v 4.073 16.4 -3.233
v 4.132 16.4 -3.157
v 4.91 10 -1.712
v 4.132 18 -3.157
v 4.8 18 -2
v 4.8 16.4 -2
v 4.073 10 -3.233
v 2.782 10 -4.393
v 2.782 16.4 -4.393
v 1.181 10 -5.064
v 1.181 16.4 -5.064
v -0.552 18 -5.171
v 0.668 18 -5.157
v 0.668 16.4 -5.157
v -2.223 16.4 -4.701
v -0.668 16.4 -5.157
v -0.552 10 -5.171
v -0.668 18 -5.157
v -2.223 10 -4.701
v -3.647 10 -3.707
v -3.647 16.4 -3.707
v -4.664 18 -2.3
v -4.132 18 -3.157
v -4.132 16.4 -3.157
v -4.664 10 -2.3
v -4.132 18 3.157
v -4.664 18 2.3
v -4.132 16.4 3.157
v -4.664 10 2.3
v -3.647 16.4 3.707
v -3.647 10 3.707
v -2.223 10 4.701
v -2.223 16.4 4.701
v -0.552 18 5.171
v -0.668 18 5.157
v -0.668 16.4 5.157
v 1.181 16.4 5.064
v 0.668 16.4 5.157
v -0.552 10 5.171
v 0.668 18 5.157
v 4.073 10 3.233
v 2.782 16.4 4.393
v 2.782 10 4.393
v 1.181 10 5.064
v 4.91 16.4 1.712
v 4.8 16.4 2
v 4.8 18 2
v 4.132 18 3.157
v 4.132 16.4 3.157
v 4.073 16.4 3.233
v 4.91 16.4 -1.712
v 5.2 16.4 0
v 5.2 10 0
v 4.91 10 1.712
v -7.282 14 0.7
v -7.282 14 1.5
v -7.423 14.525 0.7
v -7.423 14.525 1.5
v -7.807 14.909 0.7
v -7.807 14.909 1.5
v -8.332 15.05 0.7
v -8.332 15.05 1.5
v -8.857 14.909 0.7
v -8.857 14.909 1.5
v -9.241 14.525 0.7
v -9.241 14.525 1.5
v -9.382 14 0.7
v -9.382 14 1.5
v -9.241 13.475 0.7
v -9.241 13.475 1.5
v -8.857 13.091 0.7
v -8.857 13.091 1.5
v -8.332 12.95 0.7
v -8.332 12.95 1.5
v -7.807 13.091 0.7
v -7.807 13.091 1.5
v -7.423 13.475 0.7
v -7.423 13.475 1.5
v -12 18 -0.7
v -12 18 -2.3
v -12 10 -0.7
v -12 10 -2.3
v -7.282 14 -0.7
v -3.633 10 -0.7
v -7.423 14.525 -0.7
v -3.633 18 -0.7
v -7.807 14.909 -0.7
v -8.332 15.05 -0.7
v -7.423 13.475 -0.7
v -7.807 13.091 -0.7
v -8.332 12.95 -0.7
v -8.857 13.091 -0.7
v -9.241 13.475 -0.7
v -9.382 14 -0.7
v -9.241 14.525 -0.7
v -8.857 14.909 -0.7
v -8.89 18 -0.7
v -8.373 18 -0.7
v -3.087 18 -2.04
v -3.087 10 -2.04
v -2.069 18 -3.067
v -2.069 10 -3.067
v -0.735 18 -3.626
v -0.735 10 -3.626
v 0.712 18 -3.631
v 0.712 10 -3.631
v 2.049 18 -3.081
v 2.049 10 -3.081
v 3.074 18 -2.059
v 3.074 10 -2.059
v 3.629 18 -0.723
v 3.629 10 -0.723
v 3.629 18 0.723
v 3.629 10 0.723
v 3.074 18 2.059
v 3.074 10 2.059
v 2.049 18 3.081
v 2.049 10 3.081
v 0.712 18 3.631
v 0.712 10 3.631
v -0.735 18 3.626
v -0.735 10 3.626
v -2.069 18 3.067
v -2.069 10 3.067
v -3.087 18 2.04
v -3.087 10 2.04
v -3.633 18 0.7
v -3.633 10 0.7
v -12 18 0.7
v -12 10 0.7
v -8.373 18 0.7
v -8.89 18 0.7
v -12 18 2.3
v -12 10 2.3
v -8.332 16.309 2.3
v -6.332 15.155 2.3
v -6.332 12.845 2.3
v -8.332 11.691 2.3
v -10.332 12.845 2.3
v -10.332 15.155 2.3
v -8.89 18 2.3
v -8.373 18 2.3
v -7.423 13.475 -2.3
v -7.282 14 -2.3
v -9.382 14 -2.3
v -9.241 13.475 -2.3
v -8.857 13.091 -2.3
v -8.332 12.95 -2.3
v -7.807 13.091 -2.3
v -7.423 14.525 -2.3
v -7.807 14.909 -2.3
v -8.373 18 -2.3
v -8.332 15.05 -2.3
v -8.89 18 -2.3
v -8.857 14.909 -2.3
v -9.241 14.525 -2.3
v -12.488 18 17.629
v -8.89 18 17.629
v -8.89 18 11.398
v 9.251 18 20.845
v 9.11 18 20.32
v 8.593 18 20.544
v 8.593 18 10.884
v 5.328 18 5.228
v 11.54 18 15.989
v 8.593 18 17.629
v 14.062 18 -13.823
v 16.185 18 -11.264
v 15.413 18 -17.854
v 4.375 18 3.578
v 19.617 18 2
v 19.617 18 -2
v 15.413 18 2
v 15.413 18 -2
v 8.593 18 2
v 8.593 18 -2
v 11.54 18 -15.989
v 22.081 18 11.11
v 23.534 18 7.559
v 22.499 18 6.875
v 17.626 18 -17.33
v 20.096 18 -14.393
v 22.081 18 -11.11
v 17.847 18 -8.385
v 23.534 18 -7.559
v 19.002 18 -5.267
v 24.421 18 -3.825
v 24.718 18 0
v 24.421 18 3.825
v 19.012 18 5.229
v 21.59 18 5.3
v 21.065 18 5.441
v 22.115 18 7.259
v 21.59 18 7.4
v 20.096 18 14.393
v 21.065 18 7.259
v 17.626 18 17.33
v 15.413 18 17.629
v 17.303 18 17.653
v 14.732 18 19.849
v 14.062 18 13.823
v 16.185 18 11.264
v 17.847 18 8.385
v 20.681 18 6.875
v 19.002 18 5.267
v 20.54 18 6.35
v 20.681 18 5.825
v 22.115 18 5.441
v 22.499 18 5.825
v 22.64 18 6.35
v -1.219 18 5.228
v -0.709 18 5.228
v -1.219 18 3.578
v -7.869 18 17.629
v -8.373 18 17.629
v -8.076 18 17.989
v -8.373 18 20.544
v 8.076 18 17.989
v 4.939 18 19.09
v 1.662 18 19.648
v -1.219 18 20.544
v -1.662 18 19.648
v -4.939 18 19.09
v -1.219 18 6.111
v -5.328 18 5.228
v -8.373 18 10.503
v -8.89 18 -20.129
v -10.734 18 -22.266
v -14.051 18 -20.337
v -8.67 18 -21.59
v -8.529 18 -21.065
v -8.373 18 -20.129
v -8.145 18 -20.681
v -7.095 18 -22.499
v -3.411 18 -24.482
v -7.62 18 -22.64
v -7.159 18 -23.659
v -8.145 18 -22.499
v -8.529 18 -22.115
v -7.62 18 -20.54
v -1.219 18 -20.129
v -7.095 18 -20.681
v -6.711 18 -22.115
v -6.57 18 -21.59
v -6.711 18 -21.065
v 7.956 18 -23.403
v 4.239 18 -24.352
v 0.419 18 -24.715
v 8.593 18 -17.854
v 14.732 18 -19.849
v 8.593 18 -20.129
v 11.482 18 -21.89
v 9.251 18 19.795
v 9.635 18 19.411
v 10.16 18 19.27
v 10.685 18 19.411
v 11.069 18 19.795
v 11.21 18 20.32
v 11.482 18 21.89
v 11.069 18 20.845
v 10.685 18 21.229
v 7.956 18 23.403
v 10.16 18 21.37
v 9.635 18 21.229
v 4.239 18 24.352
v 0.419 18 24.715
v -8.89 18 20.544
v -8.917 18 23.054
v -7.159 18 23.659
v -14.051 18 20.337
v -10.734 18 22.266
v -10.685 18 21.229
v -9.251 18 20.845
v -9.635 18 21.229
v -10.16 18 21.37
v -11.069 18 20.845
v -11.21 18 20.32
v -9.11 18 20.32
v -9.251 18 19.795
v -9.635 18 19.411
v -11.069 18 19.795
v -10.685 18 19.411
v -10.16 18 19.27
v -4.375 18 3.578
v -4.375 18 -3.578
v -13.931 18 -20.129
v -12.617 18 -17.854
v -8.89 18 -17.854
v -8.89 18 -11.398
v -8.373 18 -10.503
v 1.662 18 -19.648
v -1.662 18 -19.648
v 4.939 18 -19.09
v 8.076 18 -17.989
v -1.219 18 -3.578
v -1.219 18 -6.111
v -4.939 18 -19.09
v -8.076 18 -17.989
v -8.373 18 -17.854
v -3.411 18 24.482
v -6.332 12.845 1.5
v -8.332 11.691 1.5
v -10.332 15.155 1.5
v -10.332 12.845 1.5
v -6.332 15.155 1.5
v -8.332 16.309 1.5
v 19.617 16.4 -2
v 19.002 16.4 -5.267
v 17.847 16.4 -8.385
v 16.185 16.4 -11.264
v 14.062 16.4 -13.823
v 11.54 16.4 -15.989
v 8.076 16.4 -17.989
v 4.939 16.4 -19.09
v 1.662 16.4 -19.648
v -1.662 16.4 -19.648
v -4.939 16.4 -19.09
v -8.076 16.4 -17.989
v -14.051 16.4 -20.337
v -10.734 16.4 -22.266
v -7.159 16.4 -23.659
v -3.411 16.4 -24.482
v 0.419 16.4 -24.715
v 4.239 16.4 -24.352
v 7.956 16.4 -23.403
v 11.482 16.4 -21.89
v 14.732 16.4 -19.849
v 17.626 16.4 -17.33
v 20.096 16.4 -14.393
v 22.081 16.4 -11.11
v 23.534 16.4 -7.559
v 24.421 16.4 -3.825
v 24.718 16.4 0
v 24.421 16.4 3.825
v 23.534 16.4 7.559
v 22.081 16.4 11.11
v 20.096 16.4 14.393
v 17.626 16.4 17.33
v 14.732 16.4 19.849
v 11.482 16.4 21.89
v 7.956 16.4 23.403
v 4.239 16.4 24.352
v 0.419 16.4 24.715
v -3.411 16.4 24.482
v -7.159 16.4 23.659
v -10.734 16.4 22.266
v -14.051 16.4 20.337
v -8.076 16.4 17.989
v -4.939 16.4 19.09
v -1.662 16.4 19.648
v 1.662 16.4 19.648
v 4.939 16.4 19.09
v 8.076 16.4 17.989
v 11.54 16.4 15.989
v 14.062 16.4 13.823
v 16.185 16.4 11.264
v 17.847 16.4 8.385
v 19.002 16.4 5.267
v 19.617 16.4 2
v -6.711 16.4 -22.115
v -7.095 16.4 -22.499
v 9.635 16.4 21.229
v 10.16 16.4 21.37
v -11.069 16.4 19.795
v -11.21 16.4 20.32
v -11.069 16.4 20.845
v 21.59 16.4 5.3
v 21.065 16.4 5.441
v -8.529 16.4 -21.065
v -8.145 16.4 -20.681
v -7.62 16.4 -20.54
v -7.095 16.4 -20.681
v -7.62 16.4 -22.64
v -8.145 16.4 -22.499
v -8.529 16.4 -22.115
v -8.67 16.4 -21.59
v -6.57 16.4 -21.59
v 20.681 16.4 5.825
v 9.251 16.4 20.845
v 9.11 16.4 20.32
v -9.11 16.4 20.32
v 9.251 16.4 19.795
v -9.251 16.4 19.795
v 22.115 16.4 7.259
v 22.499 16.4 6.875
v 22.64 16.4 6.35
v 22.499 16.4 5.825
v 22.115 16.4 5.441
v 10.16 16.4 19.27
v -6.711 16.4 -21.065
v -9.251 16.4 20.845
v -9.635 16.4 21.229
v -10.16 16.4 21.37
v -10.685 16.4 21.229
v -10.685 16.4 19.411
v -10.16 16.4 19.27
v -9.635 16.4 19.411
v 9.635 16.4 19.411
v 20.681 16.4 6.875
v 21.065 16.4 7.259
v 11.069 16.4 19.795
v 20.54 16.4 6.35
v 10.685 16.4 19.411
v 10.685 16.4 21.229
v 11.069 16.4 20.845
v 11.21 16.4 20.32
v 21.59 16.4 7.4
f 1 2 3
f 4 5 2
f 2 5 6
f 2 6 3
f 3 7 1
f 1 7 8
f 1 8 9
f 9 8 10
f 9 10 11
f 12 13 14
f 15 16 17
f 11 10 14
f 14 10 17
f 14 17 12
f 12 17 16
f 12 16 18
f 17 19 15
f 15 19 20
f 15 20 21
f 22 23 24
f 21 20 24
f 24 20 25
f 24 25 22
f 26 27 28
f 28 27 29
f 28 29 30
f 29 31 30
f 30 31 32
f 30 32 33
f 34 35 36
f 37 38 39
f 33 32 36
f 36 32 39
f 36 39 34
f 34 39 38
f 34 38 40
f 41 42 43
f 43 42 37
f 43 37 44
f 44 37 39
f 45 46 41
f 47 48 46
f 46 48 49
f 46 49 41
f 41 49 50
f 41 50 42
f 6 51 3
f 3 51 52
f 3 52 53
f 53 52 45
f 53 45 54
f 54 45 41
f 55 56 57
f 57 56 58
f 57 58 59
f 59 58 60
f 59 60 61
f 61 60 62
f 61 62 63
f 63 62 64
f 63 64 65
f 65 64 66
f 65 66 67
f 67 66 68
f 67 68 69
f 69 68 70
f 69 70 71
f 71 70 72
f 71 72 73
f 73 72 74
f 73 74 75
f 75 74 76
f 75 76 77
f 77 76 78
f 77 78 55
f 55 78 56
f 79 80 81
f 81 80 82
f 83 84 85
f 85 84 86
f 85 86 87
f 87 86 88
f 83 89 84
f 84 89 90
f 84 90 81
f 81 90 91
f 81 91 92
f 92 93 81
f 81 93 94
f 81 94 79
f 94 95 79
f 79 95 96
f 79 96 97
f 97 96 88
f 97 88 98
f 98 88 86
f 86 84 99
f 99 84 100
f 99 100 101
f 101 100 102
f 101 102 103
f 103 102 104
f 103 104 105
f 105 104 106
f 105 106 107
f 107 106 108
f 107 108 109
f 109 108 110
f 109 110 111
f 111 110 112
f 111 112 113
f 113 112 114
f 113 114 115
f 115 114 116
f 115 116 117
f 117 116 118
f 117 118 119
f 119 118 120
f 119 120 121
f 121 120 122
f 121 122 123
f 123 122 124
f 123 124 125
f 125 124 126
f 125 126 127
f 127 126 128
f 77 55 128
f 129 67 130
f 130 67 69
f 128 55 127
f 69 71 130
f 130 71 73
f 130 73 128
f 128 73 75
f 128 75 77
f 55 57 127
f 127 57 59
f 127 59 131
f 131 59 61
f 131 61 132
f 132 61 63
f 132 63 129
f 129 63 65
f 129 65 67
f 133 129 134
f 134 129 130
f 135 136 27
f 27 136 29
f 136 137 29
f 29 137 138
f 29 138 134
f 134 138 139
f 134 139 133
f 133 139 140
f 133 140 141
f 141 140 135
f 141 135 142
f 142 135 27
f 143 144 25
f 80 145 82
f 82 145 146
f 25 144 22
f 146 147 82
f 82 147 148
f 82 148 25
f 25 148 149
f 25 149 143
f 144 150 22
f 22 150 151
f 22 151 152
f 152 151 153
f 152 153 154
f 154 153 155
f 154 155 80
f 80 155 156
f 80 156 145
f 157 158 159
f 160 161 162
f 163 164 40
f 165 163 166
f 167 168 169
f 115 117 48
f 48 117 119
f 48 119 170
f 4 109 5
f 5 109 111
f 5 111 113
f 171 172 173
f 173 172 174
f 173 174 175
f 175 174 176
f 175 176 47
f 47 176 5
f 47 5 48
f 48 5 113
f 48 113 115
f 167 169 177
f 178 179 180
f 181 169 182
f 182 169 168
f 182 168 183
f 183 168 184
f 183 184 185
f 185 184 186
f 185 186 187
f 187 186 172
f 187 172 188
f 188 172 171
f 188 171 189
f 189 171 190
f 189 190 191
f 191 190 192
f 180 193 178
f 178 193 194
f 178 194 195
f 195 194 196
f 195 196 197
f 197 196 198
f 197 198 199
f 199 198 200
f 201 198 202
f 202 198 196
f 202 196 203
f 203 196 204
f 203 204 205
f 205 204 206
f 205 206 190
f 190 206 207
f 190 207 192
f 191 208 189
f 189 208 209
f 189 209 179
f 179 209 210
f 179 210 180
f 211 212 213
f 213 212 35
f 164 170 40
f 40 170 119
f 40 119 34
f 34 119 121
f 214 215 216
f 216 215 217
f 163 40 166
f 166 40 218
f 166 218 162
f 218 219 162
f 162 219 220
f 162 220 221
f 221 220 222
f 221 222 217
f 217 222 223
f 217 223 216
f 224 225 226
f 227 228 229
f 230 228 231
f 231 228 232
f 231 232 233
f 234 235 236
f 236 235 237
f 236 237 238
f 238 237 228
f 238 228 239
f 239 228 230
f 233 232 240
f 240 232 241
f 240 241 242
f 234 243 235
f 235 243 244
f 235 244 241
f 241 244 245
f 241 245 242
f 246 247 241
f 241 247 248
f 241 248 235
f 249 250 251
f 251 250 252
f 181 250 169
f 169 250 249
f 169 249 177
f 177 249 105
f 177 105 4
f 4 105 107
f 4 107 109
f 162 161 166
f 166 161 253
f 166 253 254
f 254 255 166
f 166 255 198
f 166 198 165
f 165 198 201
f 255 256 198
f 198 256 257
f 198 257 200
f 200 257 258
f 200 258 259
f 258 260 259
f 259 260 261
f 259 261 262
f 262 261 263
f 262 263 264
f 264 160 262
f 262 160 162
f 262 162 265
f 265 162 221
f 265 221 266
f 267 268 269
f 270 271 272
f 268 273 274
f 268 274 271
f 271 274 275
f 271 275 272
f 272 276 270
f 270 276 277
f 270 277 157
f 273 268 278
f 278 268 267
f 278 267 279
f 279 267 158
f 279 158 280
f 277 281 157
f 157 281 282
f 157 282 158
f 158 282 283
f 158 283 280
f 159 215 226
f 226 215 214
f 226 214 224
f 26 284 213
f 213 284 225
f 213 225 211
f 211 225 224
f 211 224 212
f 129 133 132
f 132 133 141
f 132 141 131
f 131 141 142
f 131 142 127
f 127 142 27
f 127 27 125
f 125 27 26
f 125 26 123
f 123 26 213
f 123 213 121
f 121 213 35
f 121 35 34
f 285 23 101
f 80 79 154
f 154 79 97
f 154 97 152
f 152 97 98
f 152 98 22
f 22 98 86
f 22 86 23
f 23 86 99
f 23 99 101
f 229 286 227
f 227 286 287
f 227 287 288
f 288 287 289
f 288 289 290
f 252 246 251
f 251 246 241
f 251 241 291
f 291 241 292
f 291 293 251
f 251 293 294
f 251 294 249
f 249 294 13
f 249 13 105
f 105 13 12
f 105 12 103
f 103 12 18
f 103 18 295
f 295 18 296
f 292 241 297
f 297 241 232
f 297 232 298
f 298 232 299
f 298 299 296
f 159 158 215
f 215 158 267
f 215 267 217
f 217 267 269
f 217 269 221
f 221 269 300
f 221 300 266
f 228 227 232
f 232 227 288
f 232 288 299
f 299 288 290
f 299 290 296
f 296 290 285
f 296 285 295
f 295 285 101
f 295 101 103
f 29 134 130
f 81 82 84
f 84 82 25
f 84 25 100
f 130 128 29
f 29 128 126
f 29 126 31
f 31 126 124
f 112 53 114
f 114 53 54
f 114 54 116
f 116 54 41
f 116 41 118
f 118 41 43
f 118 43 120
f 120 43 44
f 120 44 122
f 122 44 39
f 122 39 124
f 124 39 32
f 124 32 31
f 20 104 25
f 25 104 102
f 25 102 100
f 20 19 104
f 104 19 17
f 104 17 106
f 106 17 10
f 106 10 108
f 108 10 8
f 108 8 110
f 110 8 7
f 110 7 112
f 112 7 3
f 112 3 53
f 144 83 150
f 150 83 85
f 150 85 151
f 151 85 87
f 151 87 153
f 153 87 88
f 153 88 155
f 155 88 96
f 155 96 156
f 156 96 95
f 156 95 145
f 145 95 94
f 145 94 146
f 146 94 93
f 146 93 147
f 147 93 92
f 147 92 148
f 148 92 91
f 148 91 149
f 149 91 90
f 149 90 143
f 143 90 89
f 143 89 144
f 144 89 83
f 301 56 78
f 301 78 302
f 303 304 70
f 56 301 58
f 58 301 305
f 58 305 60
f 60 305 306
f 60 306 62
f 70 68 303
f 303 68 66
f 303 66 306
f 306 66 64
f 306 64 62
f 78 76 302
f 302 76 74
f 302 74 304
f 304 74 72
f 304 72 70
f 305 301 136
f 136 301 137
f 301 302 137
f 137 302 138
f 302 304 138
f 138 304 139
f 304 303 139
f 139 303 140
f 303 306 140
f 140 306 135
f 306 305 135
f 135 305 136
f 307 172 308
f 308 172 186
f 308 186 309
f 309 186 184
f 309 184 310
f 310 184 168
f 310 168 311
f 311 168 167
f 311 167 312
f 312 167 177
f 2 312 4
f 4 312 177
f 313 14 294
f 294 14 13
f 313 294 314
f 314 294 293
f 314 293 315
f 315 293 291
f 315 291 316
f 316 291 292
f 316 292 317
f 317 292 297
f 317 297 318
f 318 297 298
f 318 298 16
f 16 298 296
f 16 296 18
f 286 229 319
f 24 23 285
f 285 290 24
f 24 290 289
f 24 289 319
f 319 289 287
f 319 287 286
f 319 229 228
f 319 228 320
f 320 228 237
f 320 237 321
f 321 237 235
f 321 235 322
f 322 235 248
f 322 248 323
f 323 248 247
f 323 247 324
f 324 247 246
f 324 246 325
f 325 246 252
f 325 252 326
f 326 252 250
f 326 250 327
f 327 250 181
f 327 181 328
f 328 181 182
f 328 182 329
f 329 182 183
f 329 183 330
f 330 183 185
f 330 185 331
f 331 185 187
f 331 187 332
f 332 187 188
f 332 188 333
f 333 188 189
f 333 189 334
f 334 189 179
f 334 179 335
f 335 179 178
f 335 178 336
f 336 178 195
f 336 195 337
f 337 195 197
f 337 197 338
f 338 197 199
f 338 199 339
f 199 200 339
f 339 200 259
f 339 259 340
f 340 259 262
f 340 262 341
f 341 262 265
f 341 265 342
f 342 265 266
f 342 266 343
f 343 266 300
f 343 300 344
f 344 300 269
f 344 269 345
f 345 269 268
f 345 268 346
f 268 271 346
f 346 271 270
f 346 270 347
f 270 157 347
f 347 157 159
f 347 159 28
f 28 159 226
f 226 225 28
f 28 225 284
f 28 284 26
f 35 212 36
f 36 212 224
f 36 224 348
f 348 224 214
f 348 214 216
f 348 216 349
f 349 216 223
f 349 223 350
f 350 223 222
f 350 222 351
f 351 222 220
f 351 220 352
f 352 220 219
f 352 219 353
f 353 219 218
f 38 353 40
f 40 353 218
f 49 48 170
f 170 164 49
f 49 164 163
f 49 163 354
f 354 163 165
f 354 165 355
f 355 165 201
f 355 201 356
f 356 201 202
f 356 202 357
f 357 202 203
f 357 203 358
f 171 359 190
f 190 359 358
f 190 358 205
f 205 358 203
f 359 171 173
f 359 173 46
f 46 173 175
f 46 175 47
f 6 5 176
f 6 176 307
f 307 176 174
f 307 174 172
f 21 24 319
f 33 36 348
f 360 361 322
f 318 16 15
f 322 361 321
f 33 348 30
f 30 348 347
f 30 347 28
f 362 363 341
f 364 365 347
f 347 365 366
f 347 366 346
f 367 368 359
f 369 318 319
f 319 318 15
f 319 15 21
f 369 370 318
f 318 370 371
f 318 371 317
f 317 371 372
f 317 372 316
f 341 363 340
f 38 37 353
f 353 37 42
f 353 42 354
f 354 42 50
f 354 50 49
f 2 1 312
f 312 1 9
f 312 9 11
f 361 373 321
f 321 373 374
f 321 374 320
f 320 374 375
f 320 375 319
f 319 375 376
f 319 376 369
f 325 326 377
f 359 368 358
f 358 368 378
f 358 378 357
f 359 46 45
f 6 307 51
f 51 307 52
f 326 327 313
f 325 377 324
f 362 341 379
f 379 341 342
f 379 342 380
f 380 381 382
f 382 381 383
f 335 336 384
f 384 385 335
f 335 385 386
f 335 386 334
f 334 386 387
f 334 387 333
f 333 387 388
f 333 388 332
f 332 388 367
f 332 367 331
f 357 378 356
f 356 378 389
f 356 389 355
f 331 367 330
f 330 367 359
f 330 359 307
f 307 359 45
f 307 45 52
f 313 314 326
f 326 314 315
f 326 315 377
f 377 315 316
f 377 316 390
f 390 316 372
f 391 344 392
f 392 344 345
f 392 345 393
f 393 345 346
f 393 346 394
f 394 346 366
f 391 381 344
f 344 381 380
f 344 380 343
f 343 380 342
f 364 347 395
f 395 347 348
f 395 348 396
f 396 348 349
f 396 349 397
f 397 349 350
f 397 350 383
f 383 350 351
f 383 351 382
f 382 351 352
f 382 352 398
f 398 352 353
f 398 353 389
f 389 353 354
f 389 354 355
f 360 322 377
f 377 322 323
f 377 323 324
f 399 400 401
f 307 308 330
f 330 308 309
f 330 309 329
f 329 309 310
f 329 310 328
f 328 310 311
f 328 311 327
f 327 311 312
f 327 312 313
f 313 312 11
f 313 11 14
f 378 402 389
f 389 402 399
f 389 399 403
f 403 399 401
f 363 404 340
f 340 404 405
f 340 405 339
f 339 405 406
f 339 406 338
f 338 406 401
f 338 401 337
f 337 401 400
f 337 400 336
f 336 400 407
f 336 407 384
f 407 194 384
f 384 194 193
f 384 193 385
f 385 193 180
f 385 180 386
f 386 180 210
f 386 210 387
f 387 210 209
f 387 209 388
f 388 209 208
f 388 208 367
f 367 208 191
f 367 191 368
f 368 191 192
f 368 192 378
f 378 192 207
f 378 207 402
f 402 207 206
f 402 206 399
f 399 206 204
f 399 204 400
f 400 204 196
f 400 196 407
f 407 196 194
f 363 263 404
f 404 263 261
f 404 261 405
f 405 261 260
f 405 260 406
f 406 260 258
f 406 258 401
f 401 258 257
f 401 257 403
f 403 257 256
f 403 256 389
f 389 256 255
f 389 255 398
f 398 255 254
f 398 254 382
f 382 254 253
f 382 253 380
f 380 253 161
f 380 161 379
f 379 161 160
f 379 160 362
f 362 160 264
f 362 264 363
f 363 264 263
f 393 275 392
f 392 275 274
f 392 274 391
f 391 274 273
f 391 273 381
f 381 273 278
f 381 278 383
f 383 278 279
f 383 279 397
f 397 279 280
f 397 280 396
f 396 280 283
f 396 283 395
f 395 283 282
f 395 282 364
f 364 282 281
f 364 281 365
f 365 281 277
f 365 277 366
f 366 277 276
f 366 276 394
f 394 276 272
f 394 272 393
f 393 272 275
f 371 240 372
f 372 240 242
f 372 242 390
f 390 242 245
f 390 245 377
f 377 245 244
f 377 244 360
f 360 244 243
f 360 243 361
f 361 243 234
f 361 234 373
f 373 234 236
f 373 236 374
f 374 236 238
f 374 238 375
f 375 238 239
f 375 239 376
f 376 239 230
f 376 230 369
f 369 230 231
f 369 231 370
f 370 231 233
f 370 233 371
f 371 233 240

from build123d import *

# Parameters (mm, degrees)
BOSS_EXTRUDE2_START     = 10
BOSS_EXTRUDE2_DEPTH     = 8
SKETCH6_R               = 1.05
CUT_EXTRUDE1_DEPTH      = 3.9
CUT_EXTRUDE1_DEPTH_BACK = 8.5
CUT_EXTRUDE2_DEPTH      = 0.8
BOSS_EXTRUDE6_DEPTH     = 1.6
SKETCH9_R               = 1.05
CUT_EXTRUDE3_DEPTH      = 9


with BuildPart() as part:
    # Sketch2 → Boss-Extrude2 (new body)
    with BuildSketch(Plane(origin=(0, 0, 0), x_dir=(1, 0, 0), z_dir=(0, 1, 0)).offset(BOSS_EXTRUDE2_START)):
        with BuildLine():
            Line((-4.663689527, 2.3), (-12, 2.3))
            Line((-12, 2.3), (-12, 0.7))
            Line((-12, 0.7), (-3.633180425, 0.7))
            ThreePointArc((-3.633180425, 0.7), (3.7, 0), (-3.633180425, -0.7))
            Line((-3.633180425, -0.7), (-12, -0.7))
            Line((-12, -0.7), (-12, -2.3))
            Line((-12, -2.3), (-4.663689527, -2.3))
            ThreePointArc((-4.663689527, -2.3), (5.2, 0), (-4.663689527, 2.3))
        make_face()
    extrude(amount=BOSS_EXTRUDE2_DEPTH)

    # Sketch6 → Cut-Extrude1 (cut, two sides)
    with BuildSketch(Plane.XY.offset(2.3)) as cut_extrude1_sk:
        with Locations((-8.331844763, 14)):
            Circle(SKETCH6_R)
    extrude(amount=CUT_EXTRUDE1_DEPTH, mode=Mode.SUBTRACT)
    extrude(cut_extrude1_sk.sketch, amount=-CUT_EXTRUDE1_DEPTH_BACK, mode=Mode.SUBTRACT)

    # Sketch7 → Cut-Extrude2 (cut)
    with BuildSketch(Plane.XY.offset(2.3)):
        Polygon((-6.331844763, 15.154700538), (-8.331844763, 16.309401077), (-10.331844763, 15.154700538), (-10.331844763, 12.845299462), (-8.331844763, 11.690598923), (-6.331844763, 12.845299462), align=None)
    extrude(amount=-CUT_EXTRUDE2_DEPTH, mode=Mode.SUBTRACT)

    # Sketch8 → Boss-Extrude6 (add)
    with BuildSketch(Plane.XZ.offset(-18)):
        with BuildLine():
            Line((0.667949192, -5.156921938), (8.076329488, -17.988613012))
            ThreePointArc((8.076329488, -17.988613012), (0, -19.718450651), (-8.076329488, -17.988613012))
            Line((-8.076329488, -17.988613012), (-0.667949192, -5.156921938))
            ThreePointArc((-0.667949192, -5.156921938), (-2.6, -4.5033321), (-4.132050808, -3.156921938))
            Line((-4.132050808, -3.156921938), (-11.540431103, -15.988613012))
            Line((-11.540431103, -15.988613012), (-14.050754094, -20.336619975))
            ThreePointArc((-14.050754094, -20.336619975), (24.718450651, 0), (-14.050754094, 20.336619975))
            Line((-14.050754094, 20.336619975), (-11.540431103, 15.988613012))
            Line((-11.540431103, 15.988613012), (-4.132050808, 3.156921938))
            ThreePointArc((-4.132050808, 3.156921938), (-2.6, 4.5033321), (-0.667949192, 5.156921938))
            Line((-0.667949192, 5.156921938), (-8.076329488, 17.988613012))
            ThreePointArc((-8.076329488, 17.988613012), (0, 19.718450651), (8.076329488, 17.988613012))
            Line((8.076329488, 17.988613012), (0.667949192, 5.156921938))
            ThreePointArc((0.667949192, 5.156921938), (2.6, 4.5033321), (4.132050808, 3.156921938))
            Line((4.132050808, 3.156921938), (11.540431103, 15.988613012))
            ThreePointArc((11.540431103, 15.988613012), (17.076679187, 9.859225326), (19.616760591, 2))
            Line((19.616760591, 2), (4.8, 2))
            ThreePointArc((4.8, 2), (5.2, 0), (4.8, -2))
            Line((4.8, -2), (19.616760591, -2))
            ThreePointArc((19.616760591, -2), (17.076679187, -9.859225326), (11.540431103, -15.988613012))
            Line((11.540431103, -15.988613012), (4.132050808, -3.156921938))
            ThreePointArc((4.132050808, -3.156921938), (2.6, -4.5033321), (0.667949192, -5.156921938))
        make_face()
    extrude(amount=BOSS_EXTRUDE6_DEPTH)

    # Sketch9 → Cut-Extrude3 (cut, through all)
    with BuildSketch(Plane(origin=(0, 18, 0), x_dir=(1, 0, 0), z_dir=(0, 1, 0))):
        with Locations((-7.62, 21.59)):
            Circle(SKETCH9_R)
        with Locations((-10.16, -20.32)):
            Circle(SKETCH9_R)
        with Locations((10.16, -20.32)):
            Circle(SKETCH9_R)
        with Locations((21.59, -6.35)):
            Circle(SKETCH9_R)
    extrude(amount=-CUT_EXTRUDE3_DEPTH, mode=Mode.SUBTRACT)


solid = part.part
